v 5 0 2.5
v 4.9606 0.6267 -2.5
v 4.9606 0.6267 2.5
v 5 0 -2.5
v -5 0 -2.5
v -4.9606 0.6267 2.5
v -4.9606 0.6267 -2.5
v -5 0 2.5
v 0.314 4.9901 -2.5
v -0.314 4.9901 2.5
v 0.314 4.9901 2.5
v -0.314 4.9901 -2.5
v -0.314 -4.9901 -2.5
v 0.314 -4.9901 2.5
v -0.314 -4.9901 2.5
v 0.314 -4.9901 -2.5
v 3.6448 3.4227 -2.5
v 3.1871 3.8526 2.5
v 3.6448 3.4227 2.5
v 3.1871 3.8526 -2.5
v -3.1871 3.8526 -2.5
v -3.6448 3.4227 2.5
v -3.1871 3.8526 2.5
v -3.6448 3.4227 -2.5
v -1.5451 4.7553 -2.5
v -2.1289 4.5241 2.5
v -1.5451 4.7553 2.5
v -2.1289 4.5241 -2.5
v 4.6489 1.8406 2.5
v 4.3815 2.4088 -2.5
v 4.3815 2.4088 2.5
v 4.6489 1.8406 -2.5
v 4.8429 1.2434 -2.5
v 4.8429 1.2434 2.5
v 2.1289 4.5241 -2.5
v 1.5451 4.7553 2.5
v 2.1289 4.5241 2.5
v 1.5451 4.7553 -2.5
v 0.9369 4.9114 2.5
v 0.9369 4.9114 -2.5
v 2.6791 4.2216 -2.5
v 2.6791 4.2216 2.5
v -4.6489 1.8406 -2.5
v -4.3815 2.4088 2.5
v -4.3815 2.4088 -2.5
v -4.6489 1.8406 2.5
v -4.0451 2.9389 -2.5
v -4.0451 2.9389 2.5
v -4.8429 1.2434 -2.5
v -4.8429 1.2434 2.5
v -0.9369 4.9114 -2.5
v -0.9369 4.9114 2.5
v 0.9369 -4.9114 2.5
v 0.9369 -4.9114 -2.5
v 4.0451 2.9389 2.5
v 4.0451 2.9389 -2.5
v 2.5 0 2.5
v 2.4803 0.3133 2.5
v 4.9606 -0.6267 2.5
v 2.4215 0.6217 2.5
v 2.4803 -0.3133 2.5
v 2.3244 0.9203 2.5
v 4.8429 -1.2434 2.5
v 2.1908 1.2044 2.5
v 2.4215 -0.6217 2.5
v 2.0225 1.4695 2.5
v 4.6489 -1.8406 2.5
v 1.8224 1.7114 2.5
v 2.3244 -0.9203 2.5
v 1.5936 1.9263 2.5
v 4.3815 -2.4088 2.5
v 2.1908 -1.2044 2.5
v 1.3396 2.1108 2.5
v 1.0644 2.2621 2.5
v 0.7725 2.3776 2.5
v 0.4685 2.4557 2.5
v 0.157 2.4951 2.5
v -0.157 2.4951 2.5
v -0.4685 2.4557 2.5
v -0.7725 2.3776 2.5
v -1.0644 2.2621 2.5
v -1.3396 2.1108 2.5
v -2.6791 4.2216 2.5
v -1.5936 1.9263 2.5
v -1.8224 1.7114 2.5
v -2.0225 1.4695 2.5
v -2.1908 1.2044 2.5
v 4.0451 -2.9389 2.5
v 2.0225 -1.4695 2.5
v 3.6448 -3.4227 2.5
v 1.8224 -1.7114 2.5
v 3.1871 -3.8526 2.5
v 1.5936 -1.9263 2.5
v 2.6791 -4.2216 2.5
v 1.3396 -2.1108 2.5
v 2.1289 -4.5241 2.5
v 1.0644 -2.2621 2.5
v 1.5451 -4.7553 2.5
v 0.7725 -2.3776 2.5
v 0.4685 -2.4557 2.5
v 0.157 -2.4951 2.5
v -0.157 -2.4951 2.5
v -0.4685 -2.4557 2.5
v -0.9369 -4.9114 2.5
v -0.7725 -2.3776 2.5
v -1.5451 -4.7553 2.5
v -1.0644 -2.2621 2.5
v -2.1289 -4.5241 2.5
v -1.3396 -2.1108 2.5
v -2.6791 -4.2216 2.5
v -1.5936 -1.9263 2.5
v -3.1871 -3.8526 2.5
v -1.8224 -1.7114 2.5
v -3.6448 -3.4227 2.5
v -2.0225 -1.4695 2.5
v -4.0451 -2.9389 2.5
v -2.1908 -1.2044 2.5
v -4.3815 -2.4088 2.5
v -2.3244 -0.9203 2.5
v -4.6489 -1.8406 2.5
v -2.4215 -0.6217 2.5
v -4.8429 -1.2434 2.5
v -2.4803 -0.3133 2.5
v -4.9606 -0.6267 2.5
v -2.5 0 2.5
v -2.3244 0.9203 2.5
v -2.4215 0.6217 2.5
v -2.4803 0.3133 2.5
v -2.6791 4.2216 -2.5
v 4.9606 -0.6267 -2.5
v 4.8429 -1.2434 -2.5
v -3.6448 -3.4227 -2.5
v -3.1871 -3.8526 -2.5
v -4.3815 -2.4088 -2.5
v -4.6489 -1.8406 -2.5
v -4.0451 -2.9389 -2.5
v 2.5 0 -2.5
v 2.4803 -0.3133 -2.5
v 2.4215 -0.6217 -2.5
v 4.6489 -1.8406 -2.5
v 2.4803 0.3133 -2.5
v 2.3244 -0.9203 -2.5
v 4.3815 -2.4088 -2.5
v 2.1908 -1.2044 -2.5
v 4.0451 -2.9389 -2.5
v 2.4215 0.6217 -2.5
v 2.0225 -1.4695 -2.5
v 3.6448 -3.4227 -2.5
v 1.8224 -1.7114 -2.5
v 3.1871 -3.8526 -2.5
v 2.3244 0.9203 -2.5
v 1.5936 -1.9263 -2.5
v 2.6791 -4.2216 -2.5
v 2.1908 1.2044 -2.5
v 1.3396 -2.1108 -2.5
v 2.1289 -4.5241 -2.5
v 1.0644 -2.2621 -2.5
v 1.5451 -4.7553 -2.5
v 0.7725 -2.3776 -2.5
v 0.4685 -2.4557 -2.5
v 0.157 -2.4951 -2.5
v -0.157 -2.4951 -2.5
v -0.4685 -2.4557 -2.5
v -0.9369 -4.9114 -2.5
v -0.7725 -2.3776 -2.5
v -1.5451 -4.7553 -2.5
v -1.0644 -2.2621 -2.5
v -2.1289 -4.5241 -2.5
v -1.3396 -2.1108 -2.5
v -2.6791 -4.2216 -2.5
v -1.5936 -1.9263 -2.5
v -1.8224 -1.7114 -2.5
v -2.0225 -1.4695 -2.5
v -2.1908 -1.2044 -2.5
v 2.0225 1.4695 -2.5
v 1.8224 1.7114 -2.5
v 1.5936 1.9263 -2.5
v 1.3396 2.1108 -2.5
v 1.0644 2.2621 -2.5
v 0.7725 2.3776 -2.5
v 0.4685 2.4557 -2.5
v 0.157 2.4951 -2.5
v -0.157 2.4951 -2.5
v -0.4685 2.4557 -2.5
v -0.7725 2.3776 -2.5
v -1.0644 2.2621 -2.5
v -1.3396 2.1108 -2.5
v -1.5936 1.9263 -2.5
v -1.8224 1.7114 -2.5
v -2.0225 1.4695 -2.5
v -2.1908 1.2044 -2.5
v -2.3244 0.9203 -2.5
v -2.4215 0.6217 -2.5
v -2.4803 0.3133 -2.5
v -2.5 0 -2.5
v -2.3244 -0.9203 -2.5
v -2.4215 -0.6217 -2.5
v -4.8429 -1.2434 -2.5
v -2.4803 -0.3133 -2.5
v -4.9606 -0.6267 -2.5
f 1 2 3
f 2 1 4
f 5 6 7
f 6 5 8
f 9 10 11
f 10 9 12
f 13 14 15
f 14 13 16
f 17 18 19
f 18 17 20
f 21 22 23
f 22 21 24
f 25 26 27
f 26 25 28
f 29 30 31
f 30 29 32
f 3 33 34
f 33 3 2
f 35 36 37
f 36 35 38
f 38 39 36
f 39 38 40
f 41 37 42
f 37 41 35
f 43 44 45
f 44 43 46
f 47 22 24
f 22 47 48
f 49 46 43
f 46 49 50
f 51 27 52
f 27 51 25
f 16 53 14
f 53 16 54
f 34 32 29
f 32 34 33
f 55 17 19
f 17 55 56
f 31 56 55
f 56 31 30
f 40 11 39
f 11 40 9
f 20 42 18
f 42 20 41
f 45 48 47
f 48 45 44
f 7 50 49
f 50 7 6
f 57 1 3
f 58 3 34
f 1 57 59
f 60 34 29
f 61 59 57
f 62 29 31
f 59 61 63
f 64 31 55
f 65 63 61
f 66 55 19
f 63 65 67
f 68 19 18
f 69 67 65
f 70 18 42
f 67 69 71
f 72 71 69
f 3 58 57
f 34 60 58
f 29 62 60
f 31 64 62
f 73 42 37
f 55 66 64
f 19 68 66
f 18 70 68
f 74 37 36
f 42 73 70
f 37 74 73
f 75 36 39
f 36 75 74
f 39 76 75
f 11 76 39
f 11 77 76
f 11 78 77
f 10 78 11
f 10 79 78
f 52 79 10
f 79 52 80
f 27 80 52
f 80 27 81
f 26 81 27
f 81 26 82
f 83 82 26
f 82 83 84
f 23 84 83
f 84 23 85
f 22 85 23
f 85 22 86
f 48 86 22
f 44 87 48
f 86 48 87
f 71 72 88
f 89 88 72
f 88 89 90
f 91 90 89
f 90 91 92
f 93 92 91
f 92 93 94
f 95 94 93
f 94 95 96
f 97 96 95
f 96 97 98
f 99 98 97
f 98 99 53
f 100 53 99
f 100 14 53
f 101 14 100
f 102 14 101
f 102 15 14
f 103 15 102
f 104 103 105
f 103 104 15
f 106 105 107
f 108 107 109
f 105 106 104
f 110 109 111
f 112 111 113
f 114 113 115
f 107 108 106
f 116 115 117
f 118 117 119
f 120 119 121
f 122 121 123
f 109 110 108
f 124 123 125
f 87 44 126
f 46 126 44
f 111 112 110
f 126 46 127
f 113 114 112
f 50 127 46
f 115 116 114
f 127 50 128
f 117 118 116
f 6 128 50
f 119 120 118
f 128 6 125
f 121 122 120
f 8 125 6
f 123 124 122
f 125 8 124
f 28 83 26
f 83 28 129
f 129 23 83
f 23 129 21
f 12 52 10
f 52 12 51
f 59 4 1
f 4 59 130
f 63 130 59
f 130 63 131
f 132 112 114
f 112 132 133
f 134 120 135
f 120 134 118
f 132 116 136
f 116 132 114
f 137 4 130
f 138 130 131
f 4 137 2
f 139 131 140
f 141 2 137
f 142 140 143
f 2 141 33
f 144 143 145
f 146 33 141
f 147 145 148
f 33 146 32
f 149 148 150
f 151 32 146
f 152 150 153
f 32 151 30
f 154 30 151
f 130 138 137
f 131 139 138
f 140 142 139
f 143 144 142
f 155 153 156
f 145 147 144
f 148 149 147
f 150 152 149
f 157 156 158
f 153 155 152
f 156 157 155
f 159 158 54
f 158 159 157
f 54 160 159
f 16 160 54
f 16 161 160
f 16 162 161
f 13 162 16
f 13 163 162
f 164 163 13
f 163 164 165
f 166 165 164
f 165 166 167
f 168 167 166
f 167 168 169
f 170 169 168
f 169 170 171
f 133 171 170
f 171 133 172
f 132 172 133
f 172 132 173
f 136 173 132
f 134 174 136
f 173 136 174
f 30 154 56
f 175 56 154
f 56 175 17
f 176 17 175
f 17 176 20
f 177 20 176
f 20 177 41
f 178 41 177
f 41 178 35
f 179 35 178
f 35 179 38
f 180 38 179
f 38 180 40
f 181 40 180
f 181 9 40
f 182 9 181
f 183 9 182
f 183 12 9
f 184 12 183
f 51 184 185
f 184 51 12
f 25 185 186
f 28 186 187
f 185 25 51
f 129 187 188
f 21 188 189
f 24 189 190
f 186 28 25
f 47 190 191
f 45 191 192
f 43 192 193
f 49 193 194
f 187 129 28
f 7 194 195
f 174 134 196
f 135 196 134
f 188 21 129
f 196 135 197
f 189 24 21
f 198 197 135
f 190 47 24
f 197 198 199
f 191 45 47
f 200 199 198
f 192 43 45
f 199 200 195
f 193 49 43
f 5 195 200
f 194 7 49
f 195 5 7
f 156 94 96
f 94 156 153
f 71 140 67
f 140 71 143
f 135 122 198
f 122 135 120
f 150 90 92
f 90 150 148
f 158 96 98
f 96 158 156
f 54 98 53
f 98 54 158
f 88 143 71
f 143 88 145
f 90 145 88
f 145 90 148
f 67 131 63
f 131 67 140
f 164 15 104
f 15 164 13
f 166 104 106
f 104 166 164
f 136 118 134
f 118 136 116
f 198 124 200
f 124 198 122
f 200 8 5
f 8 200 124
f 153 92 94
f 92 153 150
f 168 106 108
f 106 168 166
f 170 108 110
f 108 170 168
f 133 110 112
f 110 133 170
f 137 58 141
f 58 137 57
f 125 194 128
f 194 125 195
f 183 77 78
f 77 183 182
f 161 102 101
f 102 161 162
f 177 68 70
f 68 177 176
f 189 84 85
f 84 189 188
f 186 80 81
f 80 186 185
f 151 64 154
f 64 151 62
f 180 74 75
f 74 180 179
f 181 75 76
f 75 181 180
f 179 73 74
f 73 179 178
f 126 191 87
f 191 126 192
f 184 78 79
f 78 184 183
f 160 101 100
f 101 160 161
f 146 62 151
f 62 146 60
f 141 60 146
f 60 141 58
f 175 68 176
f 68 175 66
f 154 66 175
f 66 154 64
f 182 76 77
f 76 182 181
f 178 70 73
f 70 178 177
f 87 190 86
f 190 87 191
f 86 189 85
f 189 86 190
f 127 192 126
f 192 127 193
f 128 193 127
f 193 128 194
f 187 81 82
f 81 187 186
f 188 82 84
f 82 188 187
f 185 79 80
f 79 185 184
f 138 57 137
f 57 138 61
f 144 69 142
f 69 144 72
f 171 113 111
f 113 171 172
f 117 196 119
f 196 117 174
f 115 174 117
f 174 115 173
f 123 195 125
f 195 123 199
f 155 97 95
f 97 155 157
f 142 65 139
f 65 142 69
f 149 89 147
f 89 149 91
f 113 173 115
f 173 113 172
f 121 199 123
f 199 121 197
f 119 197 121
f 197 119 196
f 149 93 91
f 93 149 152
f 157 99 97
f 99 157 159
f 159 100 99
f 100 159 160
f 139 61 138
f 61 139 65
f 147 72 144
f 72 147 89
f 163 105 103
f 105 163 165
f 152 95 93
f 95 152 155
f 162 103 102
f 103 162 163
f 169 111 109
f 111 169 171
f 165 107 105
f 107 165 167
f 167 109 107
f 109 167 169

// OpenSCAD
$fn = 50;


difference() {
	union() {
		translate(v = [0, 0, -2.5000000000]) {
			cylinder(h = 5, r = 5.0000000000);
		}
	}
	union() {
		translate(v = [0, 0, -100.0000000000]) {
			cylinder(h = 200, r = 2.5000000000);
		}
	}
}
